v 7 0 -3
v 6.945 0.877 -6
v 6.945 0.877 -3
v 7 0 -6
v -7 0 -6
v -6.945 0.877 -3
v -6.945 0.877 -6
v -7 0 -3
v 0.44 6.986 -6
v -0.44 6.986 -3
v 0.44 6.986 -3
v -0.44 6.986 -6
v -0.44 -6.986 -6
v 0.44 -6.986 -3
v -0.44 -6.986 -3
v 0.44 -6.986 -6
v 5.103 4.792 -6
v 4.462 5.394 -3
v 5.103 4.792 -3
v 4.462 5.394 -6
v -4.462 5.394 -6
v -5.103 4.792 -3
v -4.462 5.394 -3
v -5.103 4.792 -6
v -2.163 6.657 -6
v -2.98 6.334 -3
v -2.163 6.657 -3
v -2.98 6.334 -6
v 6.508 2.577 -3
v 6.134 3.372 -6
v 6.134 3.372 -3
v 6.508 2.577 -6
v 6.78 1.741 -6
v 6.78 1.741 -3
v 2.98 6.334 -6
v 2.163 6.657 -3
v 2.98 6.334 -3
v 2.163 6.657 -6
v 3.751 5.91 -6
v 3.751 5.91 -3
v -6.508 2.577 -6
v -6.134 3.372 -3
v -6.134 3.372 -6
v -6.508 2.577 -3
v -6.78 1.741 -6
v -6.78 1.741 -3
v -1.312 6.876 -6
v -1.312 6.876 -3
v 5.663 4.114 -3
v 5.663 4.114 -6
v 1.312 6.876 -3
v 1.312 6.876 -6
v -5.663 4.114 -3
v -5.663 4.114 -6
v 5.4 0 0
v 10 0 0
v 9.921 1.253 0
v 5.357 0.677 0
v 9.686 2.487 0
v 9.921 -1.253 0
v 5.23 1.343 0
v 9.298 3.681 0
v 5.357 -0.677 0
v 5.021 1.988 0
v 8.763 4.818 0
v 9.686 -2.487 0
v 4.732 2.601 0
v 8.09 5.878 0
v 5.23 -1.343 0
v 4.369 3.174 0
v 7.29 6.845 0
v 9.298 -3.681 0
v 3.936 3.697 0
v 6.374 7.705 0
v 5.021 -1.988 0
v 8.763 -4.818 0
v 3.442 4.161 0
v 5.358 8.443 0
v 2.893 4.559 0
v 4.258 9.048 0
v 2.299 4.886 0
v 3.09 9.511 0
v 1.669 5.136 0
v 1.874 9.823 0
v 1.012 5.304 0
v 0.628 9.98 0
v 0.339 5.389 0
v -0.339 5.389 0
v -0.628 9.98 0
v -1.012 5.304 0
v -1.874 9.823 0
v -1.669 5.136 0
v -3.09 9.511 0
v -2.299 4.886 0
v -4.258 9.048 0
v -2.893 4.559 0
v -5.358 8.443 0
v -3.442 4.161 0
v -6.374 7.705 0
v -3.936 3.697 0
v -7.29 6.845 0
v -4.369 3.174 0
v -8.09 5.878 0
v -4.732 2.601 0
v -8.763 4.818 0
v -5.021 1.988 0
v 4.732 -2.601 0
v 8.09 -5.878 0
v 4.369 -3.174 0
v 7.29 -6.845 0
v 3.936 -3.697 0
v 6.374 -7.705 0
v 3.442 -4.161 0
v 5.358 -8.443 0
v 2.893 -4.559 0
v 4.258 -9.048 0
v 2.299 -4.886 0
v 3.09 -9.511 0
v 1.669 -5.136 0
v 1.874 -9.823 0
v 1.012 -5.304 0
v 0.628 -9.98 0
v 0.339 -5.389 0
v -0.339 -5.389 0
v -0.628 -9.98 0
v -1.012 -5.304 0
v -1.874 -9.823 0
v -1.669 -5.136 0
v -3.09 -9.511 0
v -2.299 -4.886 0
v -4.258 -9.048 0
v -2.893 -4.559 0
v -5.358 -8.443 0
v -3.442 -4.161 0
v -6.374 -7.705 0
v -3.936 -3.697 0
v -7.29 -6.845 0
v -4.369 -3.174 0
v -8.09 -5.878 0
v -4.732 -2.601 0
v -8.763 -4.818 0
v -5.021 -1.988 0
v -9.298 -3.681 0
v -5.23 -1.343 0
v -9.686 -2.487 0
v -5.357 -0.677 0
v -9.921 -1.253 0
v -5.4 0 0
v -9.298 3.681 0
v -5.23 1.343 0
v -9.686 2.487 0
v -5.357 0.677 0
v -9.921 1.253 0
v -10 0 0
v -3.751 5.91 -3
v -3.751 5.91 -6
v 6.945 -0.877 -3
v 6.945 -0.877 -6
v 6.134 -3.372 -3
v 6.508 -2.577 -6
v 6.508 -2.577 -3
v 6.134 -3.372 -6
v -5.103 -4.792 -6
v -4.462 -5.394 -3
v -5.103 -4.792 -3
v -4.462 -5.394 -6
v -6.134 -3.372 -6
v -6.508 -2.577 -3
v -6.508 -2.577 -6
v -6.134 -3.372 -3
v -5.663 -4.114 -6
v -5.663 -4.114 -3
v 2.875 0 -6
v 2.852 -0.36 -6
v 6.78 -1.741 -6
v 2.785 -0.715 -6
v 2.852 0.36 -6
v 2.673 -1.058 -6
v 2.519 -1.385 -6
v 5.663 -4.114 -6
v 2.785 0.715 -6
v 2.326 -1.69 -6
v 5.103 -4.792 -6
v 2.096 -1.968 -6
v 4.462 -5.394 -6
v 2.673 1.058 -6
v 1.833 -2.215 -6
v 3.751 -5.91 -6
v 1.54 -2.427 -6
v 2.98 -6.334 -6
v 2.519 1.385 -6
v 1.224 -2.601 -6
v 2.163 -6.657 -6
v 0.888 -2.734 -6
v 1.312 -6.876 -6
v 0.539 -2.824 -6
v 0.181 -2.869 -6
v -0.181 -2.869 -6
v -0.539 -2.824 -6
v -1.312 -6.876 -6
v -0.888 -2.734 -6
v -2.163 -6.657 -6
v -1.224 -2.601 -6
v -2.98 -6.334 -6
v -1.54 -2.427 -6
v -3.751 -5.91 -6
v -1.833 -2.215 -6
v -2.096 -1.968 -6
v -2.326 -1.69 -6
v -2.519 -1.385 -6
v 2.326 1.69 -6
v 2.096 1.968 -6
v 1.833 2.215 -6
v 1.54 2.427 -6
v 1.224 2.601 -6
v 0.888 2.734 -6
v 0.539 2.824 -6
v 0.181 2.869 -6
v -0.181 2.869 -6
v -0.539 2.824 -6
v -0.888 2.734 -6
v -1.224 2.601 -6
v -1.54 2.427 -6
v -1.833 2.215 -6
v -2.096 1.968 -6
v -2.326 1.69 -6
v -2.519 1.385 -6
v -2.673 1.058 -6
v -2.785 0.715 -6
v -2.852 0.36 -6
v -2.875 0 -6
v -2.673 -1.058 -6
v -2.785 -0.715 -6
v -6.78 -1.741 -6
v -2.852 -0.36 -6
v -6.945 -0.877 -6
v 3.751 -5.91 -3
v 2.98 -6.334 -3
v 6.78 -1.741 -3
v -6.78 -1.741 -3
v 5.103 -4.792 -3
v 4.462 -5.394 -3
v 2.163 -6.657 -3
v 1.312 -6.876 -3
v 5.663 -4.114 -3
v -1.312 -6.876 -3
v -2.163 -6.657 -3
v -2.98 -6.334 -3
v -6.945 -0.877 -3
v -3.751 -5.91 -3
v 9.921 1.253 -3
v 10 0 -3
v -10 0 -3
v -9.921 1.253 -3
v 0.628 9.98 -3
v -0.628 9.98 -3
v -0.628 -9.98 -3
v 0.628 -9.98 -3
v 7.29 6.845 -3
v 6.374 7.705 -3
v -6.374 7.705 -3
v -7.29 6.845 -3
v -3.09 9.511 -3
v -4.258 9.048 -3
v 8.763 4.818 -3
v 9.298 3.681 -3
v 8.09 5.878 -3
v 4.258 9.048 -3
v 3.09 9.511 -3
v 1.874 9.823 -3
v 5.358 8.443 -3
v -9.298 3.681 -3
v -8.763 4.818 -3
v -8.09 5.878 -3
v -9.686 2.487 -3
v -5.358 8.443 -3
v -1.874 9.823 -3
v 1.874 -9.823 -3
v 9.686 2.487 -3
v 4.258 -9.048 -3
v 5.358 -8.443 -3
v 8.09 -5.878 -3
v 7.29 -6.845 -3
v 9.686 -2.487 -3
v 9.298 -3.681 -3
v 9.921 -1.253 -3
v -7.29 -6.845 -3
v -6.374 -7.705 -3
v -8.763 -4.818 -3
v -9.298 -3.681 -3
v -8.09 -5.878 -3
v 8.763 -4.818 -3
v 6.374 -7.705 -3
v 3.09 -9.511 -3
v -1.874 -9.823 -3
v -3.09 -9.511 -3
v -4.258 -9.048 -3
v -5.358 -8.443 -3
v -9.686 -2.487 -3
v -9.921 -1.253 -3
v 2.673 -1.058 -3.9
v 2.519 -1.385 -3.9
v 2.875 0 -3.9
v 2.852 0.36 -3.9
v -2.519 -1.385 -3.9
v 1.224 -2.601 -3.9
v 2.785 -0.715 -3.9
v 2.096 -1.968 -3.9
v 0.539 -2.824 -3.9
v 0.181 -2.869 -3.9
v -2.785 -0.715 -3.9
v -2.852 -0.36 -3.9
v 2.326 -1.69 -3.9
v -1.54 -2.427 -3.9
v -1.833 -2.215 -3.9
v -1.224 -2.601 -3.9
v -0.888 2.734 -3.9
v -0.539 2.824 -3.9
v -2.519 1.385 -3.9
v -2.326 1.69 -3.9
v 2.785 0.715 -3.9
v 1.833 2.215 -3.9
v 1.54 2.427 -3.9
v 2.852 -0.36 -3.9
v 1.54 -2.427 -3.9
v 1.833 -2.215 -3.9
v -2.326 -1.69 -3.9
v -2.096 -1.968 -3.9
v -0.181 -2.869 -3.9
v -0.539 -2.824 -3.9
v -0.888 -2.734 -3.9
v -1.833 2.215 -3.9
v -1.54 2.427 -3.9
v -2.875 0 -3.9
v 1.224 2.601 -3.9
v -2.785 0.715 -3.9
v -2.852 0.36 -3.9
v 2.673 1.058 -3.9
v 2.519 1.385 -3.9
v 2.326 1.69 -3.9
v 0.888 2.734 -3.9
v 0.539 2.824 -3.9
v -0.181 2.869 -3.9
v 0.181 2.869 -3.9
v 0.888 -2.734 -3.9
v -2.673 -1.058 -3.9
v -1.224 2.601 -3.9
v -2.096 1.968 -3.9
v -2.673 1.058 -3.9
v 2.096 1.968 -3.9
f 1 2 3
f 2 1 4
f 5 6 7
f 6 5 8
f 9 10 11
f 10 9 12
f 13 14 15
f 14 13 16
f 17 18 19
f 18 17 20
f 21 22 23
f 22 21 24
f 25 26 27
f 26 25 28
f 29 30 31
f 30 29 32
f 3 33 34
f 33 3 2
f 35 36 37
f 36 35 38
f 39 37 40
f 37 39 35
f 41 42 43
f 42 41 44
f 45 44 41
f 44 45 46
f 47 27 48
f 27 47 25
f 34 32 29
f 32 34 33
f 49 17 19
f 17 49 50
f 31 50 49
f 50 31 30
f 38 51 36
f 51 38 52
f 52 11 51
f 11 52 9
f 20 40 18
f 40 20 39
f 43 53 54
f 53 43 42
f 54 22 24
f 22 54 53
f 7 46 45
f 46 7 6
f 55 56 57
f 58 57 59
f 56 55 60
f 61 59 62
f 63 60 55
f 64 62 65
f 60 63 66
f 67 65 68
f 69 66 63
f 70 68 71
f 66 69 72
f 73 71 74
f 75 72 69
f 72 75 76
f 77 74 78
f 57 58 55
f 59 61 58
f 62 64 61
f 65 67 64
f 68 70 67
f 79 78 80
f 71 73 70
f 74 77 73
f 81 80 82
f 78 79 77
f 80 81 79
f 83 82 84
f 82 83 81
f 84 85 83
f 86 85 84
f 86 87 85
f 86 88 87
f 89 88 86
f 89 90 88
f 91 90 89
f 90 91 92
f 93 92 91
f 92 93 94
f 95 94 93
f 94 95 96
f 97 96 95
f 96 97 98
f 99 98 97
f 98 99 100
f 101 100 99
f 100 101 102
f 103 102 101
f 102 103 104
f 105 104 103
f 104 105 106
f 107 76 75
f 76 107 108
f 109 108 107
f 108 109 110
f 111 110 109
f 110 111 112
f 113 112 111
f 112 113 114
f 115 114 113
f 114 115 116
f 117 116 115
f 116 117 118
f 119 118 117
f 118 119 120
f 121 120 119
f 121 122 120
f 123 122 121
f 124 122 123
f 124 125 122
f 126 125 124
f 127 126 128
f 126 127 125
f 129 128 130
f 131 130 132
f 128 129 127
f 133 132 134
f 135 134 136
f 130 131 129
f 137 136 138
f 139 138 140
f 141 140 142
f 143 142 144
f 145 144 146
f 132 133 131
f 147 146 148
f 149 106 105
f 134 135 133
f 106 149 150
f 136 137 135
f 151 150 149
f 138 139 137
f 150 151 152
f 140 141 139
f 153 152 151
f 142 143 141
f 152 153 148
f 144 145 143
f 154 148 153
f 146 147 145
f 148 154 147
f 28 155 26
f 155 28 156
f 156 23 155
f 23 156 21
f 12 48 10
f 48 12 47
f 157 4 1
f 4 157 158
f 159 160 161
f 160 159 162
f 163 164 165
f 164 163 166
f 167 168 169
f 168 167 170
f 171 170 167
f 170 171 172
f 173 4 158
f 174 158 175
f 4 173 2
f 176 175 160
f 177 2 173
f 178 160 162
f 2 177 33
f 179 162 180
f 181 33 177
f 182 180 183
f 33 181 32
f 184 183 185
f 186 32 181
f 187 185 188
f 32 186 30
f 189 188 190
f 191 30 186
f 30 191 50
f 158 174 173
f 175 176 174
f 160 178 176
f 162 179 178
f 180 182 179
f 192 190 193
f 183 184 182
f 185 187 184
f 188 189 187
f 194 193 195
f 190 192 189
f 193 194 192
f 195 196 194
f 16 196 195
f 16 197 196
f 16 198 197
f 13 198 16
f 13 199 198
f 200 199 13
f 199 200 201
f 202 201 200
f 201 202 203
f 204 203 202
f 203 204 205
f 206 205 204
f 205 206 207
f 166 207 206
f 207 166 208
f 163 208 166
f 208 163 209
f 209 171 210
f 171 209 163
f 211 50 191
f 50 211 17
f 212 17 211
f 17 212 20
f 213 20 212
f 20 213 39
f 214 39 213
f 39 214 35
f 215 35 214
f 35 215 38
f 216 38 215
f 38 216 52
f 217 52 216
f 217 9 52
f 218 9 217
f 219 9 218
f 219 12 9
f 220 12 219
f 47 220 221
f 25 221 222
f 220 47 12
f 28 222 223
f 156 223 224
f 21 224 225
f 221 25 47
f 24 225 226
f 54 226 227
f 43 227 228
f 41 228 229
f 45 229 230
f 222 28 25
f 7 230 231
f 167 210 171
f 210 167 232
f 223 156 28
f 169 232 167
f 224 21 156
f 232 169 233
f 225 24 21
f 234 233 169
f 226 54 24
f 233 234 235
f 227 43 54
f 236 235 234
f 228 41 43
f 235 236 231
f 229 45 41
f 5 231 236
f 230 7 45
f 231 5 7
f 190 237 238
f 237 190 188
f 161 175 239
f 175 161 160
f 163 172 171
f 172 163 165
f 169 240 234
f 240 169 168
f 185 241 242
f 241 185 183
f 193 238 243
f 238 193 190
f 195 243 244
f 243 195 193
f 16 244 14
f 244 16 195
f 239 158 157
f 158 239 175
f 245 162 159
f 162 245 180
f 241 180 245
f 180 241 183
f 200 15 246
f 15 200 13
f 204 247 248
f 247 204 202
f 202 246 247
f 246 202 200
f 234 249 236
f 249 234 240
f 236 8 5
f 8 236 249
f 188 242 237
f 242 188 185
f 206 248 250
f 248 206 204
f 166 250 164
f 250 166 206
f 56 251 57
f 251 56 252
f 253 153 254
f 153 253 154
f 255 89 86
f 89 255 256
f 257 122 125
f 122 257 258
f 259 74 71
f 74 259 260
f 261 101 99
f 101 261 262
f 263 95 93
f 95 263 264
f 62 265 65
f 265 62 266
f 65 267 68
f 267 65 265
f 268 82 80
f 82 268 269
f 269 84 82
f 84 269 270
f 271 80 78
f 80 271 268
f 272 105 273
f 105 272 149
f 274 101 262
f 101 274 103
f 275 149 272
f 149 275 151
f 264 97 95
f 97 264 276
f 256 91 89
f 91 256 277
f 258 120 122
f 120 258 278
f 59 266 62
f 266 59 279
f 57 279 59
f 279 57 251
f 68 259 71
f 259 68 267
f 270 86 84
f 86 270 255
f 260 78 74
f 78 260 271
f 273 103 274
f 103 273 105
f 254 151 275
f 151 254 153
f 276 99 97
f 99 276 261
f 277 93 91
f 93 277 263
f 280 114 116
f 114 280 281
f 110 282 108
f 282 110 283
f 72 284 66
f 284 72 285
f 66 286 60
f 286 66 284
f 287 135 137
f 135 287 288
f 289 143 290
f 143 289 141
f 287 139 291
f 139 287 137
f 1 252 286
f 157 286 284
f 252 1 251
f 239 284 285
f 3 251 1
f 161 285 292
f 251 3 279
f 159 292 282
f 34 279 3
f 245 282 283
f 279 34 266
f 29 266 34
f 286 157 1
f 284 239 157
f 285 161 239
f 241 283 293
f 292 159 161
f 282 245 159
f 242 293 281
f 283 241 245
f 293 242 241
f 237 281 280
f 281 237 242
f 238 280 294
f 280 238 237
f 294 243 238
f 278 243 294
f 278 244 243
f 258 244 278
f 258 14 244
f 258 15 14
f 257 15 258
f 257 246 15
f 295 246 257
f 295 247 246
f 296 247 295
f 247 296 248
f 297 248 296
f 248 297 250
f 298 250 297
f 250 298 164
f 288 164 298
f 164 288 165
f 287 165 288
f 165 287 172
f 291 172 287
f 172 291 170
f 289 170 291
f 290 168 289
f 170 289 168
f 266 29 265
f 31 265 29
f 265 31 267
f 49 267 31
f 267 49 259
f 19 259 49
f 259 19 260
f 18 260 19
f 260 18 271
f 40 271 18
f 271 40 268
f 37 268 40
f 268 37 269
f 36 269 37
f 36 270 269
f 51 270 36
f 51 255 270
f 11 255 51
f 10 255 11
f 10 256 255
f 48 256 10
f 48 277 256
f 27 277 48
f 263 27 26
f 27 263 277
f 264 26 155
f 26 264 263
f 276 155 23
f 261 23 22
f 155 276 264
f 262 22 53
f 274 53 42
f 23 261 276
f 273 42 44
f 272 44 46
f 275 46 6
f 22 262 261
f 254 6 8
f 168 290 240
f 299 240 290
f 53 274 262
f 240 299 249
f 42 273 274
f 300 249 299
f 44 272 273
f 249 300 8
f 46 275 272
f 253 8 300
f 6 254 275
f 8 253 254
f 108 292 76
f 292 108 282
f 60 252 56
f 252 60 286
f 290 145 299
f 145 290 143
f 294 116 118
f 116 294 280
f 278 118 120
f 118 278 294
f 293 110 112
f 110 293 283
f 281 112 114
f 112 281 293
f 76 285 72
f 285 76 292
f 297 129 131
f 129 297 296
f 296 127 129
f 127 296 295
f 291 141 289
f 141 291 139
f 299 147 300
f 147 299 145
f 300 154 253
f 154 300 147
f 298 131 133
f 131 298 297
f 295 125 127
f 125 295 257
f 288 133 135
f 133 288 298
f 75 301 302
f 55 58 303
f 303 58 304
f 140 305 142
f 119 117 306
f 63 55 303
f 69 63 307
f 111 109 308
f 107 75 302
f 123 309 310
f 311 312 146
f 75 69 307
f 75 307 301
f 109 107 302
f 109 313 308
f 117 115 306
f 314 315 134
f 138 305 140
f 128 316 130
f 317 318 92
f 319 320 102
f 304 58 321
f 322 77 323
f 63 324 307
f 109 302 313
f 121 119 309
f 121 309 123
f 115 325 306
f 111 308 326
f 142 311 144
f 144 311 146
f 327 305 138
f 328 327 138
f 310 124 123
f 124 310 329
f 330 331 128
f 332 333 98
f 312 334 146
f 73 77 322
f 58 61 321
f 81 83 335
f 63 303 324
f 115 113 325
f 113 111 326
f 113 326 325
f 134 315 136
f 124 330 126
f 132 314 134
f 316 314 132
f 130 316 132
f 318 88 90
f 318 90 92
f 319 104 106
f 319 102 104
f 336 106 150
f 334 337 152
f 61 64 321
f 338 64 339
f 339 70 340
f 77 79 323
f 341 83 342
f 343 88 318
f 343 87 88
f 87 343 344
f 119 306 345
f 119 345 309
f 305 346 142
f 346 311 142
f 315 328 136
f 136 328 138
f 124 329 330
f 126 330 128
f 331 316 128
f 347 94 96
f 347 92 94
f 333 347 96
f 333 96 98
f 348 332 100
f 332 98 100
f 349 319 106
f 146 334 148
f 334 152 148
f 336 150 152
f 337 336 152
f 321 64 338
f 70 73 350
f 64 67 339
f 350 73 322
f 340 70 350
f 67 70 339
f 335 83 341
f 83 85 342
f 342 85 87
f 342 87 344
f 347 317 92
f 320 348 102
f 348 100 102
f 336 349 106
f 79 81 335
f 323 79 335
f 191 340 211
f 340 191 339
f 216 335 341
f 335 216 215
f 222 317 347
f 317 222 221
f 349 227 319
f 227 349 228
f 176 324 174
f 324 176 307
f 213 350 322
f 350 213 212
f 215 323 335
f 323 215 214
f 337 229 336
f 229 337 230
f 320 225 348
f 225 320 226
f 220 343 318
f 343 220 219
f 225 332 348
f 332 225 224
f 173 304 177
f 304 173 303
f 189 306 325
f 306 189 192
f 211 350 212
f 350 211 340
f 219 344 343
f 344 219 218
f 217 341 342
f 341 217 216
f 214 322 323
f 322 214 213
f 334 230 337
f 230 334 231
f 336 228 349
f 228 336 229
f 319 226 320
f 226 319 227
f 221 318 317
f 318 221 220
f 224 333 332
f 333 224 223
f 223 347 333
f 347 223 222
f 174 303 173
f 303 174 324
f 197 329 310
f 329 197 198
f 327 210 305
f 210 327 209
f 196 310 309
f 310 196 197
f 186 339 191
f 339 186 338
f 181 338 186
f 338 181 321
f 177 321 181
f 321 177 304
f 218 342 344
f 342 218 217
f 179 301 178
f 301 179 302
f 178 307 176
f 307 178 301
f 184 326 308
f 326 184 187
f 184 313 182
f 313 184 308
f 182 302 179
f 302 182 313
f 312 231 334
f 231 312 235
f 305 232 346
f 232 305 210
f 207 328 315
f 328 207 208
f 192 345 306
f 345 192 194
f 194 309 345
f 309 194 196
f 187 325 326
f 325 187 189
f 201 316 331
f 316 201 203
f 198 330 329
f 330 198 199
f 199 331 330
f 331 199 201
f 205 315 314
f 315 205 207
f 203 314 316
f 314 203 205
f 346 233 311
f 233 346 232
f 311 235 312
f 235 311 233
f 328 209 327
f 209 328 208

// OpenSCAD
$fn = 50;


difference() {
	union() {
		translate(v = [0, 0, -6.0000000000]) {
			cylinder(h = 6, r = 7.0000000000);
		}
		translate(v = [0, 0, -3.0000000000]) {
			cylinder(h = 3, r = 10.0000000000);
		}
	}
	union() {
		translate(v = [0, 0, 0]) {
			rotate(a = [0, 0, 0]) {
				difference() {
					union() {
						#translate(v = [0, 0, -6.0000000000]) {
							cylinder(h = 6, r = 2.6000000000);
						}
						#translate(v = [0, 0, -3.9000000000]) {
							cylinder(h = 3.9000000000, r = 7.0000000000, r1 = 2.8750000000, r2 = 5.4000000000);
						}
						#translate(v = [0, 0, -6.0000000000]) {
							cylinder(h = 6, r = 2.8750000000);
						}
						#translate(v = [0, 0, -6.0000000000]) {
							cylinder(h = 6, r = 2.6000000000);
						}
					}
					union();
				}
			}
		}
	}
}
